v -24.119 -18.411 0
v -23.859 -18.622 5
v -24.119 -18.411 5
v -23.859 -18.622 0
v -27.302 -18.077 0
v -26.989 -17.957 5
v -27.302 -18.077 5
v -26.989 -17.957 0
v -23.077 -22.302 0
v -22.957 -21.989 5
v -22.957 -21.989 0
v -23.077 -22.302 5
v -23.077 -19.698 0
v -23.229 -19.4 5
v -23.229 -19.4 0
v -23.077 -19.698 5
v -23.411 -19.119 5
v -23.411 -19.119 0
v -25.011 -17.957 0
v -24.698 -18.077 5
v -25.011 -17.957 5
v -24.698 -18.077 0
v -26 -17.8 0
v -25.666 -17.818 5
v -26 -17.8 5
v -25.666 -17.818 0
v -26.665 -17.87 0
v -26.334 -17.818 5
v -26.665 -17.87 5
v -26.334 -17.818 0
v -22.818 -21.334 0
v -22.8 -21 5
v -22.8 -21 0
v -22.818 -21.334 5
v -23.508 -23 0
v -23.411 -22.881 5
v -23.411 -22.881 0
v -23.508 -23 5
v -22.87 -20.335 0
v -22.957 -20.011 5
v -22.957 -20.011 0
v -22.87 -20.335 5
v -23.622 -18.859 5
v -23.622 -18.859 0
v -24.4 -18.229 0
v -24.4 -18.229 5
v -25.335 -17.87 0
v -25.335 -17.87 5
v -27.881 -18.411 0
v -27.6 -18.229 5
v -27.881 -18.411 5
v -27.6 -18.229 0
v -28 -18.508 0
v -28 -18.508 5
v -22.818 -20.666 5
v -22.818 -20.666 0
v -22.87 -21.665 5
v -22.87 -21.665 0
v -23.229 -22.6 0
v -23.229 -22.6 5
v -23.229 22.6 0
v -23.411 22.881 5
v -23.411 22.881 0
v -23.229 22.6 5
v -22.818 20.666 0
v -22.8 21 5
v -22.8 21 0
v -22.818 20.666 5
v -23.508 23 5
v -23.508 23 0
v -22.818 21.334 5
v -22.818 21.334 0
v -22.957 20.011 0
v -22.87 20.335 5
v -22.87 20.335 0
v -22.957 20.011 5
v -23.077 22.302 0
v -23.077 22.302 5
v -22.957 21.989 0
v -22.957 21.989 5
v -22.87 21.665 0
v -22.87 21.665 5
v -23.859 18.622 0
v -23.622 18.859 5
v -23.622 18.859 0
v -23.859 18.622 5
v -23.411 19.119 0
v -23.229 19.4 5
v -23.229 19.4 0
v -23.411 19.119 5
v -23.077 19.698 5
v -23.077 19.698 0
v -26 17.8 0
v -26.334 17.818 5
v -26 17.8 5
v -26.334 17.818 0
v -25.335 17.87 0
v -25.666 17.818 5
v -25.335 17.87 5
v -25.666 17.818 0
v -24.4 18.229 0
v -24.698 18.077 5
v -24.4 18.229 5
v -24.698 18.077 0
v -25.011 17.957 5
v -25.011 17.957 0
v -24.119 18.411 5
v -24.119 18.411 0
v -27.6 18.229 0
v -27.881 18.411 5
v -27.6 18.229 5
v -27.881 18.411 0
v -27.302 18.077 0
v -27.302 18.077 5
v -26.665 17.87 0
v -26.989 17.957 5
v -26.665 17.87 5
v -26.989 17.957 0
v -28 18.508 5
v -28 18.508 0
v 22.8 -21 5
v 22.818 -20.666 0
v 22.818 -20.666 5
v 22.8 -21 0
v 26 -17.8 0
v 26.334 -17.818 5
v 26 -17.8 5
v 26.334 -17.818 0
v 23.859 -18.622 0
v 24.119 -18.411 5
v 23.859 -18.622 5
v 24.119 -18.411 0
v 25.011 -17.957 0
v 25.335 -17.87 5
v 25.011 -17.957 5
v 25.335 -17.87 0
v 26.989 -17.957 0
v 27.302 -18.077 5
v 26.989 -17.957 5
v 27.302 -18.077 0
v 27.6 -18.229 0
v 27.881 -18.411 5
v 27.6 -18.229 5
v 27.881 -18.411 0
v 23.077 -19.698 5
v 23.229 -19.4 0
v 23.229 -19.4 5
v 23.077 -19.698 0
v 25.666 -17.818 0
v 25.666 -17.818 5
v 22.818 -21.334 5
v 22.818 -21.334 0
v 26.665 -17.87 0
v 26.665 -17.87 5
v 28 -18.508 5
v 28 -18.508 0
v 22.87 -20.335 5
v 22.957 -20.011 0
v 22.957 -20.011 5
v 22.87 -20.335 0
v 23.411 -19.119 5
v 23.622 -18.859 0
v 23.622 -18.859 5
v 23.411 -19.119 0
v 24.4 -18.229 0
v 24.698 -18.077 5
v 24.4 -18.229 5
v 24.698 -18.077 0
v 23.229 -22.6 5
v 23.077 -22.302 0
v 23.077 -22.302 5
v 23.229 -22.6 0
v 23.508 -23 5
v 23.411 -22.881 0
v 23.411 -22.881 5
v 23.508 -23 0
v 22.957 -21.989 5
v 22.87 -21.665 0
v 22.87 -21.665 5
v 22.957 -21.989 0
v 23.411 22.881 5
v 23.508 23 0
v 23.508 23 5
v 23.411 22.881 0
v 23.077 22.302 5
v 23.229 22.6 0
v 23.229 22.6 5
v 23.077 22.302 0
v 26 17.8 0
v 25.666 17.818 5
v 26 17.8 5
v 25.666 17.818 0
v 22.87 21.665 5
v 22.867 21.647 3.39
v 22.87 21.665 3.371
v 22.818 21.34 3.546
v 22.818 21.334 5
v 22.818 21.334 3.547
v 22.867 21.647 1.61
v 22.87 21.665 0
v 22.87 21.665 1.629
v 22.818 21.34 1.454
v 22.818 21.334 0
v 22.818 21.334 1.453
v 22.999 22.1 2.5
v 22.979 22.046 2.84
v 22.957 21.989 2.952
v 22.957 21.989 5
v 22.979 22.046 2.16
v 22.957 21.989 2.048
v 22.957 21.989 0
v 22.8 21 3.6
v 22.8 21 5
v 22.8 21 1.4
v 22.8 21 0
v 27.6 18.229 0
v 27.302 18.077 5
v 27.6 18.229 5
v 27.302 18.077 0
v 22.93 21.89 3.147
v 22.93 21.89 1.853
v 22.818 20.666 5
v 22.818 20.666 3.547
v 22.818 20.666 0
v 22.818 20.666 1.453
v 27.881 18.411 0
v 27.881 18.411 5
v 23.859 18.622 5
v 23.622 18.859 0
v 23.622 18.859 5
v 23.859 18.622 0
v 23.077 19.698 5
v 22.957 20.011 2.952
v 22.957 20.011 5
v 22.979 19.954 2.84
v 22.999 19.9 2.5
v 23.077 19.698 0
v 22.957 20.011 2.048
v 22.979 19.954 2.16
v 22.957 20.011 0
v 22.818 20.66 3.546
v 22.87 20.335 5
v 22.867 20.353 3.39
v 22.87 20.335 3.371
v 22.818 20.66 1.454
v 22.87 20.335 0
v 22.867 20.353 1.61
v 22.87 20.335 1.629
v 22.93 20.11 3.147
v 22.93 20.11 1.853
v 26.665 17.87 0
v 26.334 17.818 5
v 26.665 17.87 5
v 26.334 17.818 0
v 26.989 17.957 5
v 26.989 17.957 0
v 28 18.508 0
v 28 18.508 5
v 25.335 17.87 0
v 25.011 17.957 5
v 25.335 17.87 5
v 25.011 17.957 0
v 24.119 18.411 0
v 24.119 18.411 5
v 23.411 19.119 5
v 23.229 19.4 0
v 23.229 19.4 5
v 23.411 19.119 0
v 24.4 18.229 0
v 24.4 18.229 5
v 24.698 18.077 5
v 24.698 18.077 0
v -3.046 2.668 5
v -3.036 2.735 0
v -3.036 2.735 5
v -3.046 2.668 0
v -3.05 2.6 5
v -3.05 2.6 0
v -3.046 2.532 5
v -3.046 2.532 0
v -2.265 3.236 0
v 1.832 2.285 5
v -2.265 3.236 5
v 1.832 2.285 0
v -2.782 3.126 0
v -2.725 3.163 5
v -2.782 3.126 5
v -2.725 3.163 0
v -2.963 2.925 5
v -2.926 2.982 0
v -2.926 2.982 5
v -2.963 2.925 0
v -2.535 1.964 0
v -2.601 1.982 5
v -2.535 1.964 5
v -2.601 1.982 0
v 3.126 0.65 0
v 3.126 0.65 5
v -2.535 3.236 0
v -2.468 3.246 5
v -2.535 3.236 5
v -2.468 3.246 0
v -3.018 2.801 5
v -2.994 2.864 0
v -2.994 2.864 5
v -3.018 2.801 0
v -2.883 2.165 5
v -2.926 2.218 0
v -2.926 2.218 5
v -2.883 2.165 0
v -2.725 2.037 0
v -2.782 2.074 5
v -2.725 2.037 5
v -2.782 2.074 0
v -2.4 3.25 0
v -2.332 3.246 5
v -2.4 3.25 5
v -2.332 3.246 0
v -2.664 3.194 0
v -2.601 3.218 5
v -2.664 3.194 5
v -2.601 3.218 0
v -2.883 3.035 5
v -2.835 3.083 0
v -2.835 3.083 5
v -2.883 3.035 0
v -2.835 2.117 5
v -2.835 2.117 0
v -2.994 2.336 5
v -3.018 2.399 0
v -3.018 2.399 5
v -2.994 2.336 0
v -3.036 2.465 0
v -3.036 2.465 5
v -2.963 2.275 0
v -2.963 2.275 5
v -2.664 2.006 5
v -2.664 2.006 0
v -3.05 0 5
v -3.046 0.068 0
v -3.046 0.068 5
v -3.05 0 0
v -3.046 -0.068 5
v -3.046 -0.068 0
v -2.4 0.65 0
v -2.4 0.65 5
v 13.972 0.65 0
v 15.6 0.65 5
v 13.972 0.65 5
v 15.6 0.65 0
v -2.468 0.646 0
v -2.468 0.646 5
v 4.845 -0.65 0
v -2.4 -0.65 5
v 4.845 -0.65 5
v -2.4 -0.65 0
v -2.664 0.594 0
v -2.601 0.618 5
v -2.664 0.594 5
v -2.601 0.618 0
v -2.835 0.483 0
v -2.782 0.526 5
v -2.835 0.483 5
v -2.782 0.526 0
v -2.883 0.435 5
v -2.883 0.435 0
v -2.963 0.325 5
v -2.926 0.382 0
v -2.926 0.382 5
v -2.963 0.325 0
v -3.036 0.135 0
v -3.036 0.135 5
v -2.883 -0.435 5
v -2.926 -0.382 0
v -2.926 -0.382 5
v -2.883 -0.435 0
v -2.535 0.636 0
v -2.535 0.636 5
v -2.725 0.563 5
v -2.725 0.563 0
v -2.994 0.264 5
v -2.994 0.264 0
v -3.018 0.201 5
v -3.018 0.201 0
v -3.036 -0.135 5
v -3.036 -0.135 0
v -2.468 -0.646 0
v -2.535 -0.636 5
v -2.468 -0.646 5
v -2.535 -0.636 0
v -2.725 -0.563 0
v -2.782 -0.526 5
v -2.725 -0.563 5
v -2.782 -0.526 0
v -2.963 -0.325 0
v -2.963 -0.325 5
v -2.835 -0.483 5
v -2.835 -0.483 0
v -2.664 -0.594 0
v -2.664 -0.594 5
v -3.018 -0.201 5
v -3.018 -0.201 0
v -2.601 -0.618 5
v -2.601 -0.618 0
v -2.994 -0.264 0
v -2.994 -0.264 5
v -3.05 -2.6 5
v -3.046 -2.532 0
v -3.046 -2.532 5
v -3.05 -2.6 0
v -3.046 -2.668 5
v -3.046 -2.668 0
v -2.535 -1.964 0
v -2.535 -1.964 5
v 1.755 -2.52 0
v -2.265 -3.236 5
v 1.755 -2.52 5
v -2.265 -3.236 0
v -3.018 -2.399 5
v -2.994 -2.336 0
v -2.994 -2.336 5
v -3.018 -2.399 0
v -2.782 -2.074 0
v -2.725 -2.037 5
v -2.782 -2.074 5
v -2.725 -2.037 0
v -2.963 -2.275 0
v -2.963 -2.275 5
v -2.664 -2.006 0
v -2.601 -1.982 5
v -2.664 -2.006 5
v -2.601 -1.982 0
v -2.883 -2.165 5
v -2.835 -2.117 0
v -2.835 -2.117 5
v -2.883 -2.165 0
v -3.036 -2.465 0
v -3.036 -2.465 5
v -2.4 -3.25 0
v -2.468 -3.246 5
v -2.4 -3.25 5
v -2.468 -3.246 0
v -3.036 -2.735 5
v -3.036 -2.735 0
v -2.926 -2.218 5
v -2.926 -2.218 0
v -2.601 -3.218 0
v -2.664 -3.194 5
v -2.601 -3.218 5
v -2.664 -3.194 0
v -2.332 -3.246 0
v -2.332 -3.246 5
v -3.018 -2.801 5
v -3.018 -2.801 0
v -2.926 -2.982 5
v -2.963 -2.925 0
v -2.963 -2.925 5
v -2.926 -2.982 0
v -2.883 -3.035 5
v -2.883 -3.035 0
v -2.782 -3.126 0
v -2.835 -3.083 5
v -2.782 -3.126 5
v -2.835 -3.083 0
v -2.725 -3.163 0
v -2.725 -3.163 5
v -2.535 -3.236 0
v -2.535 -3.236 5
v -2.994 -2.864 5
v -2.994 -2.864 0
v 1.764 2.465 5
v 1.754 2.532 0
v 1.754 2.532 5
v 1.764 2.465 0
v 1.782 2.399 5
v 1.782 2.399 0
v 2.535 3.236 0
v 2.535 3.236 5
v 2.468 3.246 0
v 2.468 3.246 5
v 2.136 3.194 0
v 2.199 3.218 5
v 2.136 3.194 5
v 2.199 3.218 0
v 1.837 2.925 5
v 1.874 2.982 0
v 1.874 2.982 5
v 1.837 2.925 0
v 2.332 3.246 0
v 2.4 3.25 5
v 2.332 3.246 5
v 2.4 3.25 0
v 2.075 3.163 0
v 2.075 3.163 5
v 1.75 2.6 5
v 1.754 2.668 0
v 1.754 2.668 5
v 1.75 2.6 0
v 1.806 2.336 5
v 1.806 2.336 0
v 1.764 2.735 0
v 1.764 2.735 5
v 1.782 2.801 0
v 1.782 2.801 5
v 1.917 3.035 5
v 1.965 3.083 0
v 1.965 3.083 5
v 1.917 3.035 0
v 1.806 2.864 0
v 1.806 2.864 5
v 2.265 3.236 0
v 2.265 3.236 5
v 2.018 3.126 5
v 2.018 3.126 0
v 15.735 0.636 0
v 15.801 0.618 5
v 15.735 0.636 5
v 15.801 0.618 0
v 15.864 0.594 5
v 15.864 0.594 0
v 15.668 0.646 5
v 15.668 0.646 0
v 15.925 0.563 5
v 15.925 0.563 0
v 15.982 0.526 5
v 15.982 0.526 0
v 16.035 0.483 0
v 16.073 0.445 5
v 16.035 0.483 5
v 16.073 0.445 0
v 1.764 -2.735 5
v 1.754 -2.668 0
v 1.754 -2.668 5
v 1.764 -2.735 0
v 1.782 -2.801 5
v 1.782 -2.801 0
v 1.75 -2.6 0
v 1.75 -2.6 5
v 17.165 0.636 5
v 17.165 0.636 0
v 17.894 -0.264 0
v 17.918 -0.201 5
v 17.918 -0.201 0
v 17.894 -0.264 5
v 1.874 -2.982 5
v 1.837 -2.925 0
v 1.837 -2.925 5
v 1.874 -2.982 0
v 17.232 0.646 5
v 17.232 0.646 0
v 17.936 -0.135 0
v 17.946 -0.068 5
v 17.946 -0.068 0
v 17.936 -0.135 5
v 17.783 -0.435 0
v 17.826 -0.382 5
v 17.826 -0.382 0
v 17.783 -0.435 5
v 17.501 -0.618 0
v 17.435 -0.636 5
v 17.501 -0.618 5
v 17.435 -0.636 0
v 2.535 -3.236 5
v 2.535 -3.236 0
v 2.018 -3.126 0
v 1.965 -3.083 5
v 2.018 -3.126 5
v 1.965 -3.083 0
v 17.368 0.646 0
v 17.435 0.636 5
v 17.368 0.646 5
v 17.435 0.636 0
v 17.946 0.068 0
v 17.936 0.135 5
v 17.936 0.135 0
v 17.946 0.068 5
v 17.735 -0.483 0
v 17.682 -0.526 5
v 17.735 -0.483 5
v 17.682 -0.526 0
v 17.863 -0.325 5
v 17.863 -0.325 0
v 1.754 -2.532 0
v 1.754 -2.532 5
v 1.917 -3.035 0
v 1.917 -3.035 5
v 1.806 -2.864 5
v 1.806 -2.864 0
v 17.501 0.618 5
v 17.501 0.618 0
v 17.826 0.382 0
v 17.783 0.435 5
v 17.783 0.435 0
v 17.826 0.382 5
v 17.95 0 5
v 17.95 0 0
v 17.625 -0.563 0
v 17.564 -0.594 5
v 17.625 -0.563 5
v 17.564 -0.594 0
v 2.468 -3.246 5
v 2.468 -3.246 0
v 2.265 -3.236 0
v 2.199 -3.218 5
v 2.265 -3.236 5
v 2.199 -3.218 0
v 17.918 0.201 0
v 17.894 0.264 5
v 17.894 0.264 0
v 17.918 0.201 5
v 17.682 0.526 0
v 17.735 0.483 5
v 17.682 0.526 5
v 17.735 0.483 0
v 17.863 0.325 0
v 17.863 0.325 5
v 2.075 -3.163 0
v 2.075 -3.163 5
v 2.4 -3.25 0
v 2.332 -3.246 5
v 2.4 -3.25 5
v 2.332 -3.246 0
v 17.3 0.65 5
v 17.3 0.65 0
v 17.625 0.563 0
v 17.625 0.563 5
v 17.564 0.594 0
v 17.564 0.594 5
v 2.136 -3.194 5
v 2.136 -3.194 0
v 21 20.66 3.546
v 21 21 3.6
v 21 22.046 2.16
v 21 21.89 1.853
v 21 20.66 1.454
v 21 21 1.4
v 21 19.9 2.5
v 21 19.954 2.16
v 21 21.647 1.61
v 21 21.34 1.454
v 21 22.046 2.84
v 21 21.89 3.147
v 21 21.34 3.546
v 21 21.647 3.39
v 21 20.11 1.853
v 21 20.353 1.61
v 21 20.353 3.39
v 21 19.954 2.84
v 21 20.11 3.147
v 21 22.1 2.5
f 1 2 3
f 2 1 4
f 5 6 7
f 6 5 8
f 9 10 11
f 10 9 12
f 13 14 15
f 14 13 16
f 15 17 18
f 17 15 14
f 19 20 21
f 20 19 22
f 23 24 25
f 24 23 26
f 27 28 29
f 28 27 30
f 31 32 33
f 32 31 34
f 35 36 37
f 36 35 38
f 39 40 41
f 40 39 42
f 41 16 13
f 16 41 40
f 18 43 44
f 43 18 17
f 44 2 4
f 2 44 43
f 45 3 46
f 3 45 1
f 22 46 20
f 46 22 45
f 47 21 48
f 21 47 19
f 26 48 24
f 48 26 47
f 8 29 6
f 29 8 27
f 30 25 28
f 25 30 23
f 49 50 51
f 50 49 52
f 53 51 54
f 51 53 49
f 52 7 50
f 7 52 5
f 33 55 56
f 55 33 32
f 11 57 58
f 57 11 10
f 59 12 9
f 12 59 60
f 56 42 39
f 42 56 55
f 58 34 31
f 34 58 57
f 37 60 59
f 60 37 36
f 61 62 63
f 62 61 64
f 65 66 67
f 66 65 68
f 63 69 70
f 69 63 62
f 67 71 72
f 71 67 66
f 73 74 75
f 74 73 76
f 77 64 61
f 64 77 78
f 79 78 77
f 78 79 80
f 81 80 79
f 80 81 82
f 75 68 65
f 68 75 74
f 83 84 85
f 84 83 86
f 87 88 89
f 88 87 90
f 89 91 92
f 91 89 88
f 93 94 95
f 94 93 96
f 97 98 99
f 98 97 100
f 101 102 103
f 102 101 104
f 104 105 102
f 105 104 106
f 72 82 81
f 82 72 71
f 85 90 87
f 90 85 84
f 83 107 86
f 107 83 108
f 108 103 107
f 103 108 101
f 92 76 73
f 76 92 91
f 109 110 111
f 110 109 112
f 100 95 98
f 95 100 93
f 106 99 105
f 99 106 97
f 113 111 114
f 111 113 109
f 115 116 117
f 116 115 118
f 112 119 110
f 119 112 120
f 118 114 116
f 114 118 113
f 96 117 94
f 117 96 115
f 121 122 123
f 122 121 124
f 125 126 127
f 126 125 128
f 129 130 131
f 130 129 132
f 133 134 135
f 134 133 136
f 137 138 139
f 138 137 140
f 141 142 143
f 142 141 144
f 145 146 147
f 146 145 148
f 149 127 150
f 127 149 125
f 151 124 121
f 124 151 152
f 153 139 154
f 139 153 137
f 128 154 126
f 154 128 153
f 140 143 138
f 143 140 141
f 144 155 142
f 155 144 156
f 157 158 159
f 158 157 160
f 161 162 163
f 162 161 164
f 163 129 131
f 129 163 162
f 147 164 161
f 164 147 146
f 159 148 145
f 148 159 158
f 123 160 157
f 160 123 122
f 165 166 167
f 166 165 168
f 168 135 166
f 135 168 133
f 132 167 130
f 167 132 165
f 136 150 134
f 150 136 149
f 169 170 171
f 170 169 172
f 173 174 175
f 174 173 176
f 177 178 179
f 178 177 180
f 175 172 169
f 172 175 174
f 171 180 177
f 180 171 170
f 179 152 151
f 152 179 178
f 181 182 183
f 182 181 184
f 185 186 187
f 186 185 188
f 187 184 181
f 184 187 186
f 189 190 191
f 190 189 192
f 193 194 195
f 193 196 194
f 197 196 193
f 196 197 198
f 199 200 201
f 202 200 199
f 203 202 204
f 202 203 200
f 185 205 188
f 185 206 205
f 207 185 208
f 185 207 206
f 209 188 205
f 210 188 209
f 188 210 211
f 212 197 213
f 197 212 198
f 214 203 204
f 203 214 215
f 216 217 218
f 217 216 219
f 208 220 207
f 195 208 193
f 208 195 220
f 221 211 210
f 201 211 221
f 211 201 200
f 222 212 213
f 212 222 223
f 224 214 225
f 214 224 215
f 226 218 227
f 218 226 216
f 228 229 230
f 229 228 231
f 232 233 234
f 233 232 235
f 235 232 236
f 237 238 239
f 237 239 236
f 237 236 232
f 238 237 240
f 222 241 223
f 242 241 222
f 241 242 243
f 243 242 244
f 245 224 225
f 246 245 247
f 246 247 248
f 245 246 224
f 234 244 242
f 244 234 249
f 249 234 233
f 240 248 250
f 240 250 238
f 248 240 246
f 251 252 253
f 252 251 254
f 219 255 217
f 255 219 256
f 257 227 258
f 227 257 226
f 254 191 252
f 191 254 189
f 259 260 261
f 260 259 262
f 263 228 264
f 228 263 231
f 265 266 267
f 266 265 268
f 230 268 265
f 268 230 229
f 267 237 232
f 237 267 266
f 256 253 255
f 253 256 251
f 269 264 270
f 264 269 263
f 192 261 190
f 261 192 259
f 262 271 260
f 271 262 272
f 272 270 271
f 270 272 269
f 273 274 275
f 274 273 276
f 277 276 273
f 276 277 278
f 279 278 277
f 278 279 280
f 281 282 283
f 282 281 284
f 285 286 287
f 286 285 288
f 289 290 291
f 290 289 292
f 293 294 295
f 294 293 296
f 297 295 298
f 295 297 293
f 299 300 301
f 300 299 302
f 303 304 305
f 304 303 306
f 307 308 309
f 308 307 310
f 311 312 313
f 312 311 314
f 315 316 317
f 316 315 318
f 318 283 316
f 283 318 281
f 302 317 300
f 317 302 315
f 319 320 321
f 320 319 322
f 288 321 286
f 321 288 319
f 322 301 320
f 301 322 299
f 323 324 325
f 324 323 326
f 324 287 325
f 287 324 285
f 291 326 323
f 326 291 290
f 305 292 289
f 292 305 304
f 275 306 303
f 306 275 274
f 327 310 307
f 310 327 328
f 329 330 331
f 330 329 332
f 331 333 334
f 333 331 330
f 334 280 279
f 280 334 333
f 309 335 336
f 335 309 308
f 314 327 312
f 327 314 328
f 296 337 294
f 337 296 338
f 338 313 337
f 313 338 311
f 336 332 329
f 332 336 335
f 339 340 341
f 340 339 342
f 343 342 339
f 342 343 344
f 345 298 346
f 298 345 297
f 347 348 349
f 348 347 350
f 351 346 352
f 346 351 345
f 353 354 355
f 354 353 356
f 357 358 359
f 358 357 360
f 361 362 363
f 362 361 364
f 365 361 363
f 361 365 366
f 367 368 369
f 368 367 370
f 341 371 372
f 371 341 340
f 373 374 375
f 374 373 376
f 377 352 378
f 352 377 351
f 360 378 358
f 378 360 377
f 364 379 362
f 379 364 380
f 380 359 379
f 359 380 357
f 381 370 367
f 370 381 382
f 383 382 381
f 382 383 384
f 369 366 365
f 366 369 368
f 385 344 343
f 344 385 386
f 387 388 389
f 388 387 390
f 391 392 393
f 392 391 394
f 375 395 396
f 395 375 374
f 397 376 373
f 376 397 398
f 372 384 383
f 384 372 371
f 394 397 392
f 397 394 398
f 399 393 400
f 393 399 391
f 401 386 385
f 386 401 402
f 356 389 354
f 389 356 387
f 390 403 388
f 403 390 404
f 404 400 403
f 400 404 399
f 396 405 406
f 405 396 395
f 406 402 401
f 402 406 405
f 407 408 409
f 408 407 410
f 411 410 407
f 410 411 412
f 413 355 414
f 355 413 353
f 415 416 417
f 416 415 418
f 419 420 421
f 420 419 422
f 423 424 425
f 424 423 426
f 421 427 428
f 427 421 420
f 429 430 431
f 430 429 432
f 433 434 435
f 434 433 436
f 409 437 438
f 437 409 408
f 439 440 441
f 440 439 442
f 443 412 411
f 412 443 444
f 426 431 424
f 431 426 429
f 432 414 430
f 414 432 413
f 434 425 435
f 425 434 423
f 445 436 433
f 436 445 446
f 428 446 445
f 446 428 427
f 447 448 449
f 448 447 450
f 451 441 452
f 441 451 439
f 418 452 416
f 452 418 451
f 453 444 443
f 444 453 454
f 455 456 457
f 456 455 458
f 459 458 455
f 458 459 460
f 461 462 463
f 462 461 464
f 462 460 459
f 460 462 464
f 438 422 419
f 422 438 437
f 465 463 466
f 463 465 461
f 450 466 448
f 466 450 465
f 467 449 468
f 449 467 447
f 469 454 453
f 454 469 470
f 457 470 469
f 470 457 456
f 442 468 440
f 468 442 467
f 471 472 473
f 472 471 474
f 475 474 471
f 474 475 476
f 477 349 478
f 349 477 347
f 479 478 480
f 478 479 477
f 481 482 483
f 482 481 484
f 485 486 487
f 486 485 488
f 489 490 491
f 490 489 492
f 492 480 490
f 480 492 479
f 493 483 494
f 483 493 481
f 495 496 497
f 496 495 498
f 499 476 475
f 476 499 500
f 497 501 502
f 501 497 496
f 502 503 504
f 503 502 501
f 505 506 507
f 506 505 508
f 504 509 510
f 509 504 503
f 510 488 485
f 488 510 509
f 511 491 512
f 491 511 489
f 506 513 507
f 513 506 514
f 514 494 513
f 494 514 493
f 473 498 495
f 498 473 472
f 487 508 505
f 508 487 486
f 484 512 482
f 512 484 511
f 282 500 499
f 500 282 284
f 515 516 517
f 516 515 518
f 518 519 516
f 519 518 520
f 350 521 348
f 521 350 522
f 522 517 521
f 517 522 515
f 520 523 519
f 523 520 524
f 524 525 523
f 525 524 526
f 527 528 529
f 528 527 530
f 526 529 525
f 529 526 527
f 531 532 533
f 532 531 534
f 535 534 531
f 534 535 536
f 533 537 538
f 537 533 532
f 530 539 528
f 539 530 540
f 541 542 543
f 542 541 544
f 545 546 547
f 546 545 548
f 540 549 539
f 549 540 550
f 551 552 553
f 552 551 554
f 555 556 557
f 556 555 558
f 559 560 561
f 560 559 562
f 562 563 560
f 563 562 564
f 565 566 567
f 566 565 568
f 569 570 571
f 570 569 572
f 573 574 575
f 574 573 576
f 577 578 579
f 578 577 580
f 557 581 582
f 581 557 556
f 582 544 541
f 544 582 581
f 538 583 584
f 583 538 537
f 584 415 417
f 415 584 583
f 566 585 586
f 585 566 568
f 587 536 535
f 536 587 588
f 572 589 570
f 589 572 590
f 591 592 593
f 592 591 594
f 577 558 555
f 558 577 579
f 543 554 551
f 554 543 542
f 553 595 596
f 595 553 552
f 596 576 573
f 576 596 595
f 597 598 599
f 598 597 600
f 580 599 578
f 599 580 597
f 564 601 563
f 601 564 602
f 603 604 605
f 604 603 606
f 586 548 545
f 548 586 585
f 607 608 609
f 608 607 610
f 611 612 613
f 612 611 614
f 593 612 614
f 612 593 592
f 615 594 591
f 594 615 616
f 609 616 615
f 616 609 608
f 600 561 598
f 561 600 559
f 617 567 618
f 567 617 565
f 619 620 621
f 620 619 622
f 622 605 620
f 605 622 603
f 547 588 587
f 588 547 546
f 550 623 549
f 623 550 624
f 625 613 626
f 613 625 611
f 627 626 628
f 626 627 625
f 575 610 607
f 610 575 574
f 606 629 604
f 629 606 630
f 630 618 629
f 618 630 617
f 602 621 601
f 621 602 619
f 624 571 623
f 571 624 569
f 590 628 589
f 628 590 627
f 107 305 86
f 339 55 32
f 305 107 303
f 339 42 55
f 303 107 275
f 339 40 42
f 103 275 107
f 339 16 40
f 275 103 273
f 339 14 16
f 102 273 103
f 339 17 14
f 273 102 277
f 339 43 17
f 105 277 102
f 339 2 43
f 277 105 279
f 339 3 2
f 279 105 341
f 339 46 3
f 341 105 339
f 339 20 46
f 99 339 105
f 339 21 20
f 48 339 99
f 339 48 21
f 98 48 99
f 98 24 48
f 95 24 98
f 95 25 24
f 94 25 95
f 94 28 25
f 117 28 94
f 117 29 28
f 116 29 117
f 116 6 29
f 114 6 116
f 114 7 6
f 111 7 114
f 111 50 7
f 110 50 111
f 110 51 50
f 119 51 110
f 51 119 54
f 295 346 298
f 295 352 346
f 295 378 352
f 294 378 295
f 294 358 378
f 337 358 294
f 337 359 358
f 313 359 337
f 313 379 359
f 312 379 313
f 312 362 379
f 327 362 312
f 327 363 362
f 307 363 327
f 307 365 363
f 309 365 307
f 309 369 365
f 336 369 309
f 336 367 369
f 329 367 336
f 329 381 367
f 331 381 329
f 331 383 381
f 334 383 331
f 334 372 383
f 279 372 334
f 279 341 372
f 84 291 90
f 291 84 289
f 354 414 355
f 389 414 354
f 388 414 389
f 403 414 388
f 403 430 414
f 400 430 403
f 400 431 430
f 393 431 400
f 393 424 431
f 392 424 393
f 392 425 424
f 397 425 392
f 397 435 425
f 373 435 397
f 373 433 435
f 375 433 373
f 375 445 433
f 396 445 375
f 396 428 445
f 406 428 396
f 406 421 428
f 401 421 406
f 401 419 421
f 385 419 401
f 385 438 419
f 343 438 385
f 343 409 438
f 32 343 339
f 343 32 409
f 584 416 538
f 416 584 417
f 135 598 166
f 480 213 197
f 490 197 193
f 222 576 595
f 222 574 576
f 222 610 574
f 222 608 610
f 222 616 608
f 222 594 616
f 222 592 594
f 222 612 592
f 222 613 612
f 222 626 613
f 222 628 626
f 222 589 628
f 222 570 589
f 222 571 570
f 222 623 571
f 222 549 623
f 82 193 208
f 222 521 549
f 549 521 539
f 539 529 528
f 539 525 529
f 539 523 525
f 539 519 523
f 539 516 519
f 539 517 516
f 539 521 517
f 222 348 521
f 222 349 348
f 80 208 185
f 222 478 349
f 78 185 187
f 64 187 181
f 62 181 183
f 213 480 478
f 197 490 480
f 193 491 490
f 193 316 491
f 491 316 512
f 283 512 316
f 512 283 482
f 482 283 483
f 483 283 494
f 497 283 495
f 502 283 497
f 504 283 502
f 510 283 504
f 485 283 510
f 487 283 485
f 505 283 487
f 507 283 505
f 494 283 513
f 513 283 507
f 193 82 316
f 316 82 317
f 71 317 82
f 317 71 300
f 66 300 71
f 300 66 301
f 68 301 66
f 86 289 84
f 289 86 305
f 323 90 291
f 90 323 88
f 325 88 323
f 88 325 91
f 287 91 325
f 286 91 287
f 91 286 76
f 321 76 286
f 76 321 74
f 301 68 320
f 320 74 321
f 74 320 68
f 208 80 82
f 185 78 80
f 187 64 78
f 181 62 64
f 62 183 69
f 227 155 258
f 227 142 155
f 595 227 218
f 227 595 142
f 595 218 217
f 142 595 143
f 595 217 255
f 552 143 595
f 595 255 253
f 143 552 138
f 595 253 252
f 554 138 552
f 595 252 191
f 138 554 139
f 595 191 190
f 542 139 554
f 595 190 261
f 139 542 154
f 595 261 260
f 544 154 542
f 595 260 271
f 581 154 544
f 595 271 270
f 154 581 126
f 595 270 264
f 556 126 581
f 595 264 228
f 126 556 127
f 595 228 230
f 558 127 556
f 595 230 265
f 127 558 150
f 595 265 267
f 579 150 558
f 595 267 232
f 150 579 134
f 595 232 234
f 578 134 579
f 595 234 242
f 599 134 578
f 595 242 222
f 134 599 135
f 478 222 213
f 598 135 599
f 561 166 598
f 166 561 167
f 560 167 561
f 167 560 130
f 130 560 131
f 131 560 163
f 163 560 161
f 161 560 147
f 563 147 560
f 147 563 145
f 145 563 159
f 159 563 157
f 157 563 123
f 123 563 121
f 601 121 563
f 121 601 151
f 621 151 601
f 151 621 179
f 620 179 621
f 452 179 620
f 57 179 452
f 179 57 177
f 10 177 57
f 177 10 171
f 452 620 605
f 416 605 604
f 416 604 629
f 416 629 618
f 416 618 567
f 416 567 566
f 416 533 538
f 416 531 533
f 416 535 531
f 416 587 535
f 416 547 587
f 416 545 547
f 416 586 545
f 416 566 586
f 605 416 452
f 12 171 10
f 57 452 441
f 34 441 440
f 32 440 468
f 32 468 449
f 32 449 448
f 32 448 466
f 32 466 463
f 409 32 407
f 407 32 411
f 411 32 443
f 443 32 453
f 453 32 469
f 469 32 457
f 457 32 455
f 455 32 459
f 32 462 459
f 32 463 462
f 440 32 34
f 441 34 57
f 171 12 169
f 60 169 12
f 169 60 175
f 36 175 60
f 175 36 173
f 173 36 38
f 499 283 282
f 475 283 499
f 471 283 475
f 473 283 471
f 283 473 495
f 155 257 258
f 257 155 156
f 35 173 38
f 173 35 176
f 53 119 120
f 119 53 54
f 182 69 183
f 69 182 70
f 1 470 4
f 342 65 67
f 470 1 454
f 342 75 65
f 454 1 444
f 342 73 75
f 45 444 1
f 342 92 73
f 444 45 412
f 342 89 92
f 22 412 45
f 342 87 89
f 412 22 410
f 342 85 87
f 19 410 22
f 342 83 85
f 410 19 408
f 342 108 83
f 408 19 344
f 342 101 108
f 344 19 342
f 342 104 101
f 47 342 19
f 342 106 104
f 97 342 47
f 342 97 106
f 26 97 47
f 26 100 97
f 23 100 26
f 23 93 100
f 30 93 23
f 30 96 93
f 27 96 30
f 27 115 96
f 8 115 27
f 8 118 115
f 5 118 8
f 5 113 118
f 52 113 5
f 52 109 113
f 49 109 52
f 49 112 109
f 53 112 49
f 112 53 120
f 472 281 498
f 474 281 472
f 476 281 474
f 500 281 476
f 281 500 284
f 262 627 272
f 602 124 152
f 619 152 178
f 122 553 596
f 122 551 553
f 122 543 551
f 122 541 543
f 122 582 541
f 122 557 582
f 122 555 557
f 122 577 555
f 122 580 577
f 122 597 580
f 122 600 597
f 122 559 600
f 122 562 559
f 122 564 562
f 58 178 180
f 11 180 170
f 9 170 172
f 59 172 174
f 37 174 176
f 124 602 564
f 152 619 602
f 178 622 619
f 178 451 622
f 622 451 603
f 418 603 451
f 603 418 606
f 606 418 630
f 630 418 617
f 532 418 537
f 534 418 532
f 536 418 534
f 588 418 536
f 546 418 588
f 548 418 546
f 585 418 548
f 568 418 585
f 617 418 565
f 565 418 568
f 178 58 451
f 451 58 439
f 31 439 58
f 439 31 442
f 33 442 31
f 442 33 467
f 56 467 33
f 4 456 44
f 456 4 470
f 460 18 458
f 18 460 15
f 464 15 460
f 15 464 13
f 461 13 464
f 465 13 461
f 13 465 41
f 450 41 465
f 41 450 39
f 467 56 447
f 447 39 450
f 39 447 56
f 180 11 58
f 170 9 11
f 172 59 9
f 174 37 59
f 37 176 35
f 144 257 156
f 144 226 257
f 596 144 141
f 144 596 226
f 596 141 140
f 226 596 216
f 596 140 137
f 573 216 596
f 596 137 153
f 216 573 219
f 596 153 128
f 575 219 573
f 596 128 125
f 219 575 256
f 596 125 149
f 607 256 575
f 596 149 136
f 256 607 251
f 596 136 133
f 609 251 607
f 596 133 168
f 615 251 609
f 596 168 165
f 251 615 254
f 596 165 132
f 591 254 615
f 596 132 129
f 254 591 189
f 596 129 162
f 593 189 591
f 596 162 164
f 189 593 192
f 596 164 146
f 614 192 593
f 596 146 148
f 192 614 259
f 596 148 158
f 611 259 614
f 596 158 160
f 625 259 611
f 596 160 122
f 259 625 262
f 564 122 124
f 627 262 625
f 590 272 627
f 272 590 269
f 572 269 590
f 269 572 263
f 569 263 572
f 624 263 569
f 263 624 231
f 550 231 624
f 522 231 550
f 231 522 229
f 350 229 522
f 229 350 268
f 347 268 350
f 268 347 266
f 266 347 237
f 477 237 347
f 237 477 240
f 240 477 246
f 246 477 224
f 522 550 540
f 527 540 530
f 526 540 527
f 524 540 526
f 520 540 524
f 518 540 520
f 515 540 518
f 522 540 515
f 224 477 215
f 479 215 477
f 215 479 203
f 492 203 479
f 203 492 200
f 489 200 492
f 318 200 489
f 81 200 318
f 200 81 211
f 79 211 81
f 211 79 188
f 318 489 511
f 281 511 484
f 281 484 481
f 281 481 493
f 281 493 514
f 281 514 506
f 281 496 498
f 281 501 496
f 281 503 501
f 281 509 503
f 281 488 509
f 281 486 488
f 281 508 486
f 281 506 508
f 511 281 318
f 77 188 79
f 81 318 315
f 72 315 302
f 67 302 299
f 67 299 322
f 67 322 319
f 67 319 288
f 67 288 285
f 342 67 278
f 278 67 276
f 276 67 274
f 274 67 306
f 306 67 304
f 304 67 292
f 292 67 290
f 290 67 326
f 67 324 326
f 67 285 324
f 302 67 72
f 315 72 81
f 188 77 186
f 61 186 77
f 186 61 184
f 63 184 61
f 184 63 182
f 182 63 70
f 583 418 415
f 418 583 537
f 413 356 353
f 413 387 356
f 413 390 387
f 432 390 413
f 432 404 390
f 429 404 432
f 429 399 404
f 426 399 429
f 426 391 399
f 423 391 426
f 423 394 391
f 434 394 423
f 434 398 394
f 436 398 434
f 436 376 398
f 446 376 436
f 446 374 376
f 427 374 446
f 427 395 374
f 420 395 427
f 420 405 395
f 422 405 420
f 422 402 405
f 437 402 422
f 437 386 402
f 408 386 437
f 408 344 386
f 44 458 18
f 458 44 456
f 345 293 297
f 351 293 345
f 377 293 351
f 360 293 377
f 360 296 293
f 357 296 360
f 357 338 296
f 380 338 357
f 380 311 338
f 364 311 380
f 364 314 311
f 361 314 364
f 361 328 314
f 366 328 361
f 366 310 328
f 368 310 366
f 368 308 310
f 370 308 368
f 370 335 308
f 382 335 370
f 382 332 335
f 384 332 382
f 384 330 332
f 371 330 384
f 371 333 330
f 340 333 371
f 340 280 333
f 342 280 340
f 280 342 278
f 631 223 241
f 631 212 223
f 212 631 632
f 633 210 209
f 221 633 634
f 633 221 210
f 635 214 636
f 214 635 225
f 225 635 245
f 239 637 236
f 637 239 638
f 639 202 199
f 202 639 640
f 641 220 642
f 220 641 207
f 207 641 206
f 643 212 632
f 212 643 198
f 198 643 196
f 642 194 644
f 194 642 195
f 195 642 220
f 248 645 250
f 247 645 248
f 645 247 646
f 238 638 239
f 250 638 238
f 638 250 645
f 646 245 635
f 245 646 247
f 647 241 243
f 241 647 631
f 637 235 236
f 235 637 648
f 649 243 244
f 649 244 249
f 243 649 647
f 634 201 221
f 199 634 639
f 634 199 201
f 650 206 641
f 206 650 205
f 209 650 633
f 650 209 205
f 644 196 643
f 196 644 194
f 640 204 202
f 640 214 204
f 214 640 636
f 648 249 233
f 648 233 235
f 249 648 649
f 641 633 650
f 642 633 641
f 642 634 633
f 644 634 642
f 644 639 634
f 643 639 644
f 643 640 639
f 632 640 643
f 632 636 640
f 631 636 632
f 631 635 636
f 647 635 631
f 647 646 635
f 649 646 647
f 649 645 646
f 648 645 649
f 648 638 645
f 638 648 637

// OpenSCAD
// =========================================================
// COMPONENT: DIAGONAL LINKAGE COMB (V4 Architecture)
// Revision 2.0 — Diagonal Slits for Phase-Shifted Arms
// =========================================================
// 
// This is a drop-in guide block. It slides down the 4 corner
// standoffs and sits freely in the 9mm vertical void between 
// the top of the cam (Z=45.8) and the bottom of the top plate (Z=54).
//
// It features 6 open-top diagonal trenches that perfectly trace 
// the 2D footprint of the phase-shifted metal linkages.
// =========================================================

// --- 1. PARAMETERS ---

comb_length     = 56.0;    // X — reaches standoffs at ±26mm (was 38 = too small)
comb_width      = 46.0;    // Y — reaches standoffs at ±21mm
comb_thickness  = 5.0;
standoff_x      = 26.0;
standoff_y      = 21.0;
standoff_hole_d = 6.4;     // Clearance for 6.0mm OD standoffs

// Braille Array Geometry (Must match linkage_v4.scad)
col_spacing     = 4.8;
row_spacing     = 2.6;
track_width     = 1.6;
track_gap       = 0.1;
inner_radius    = 8.0;

slit_width      = 1.3;     // 1.0mm sheet metal + 0.3mm sliding clearance

$fn = 60;

// Track and dot position math
function track_r(t) = inner_radius + t * (track_width + track_gap) + track_width / 2;
function dot_x(d) = (d < 3) ? -col_spacing/2 : col_spacing/2;
function dot_y(d) = (d == 0 || d == 3) ?  row_spacing :
                    (d == 1 || d == 4) ?  0 :
                                         -row_spacing;

// --- 2. MODULES ---

module comb_body() {
    // Rectangular body spanning all 4 standoffs at (±26,±21)
    hull() {
        for(sx = [-1, 1]) for(sy = [-1, 1]) {
            translate([sx * (comb_length/2 - 2), sy * (comb_width/2 - 2), 0])
                cylinder(r=2, h=comb_thickness);
        }
    }
}

module standoff_holes() {
    // 4 corner holes allowing the comb to slide down the pillars
    for(sx = [-1, 1]) for(sy = [-1, 1]) {
        translate([sx * standoff_x, sy * standoff_y, -1])
            cylinder(d=standoff_hole_d, h=comb_thickness + 2);
    }
}

module diagonal_slits() {
    // Generates 6 diagonal trenches connecting the Braille dot (nub)
    // to the Y=0 centerline of the cam (foot).
    for(d = [0 : 5]) {
        nx = dot_x(d);        // Nub X (Top of linkage)
        ny = dot_y(d);        // Nub Y
        fx = track_r(d);      // Foot X (Bottom of linkage)
        fy = 0;               // Foot Y (All feet rest on Y=0 axis)
        
        translate([0, 0, -1])
        linear_extrude(height = comb_thickness + 2)
        hull() {
            translate([nx, ny]) circle(d=slit_width);
            translate([fx, fy]) circle(d=slit_width);
        }
    }
}

module grub_screw_hole() {
    // M2 grub screw through one standoff hole wall — locks comb at correct Z height
    // Audit 2 fix (2026-05-15): comb was free-floating, cam friction could spin it
    translate([standoff_x, standoff_y, comb_thickness/2])
        rotate([0, 90, 0])
        cylinder(d=2.2, h=10, center=true, $fn=20);
}

// --- 3. ASSEMBLY ---

difference() {
    comb_body();
    standoff_holes();
    diagonal_slits();
    grub_screw_hole();
}
